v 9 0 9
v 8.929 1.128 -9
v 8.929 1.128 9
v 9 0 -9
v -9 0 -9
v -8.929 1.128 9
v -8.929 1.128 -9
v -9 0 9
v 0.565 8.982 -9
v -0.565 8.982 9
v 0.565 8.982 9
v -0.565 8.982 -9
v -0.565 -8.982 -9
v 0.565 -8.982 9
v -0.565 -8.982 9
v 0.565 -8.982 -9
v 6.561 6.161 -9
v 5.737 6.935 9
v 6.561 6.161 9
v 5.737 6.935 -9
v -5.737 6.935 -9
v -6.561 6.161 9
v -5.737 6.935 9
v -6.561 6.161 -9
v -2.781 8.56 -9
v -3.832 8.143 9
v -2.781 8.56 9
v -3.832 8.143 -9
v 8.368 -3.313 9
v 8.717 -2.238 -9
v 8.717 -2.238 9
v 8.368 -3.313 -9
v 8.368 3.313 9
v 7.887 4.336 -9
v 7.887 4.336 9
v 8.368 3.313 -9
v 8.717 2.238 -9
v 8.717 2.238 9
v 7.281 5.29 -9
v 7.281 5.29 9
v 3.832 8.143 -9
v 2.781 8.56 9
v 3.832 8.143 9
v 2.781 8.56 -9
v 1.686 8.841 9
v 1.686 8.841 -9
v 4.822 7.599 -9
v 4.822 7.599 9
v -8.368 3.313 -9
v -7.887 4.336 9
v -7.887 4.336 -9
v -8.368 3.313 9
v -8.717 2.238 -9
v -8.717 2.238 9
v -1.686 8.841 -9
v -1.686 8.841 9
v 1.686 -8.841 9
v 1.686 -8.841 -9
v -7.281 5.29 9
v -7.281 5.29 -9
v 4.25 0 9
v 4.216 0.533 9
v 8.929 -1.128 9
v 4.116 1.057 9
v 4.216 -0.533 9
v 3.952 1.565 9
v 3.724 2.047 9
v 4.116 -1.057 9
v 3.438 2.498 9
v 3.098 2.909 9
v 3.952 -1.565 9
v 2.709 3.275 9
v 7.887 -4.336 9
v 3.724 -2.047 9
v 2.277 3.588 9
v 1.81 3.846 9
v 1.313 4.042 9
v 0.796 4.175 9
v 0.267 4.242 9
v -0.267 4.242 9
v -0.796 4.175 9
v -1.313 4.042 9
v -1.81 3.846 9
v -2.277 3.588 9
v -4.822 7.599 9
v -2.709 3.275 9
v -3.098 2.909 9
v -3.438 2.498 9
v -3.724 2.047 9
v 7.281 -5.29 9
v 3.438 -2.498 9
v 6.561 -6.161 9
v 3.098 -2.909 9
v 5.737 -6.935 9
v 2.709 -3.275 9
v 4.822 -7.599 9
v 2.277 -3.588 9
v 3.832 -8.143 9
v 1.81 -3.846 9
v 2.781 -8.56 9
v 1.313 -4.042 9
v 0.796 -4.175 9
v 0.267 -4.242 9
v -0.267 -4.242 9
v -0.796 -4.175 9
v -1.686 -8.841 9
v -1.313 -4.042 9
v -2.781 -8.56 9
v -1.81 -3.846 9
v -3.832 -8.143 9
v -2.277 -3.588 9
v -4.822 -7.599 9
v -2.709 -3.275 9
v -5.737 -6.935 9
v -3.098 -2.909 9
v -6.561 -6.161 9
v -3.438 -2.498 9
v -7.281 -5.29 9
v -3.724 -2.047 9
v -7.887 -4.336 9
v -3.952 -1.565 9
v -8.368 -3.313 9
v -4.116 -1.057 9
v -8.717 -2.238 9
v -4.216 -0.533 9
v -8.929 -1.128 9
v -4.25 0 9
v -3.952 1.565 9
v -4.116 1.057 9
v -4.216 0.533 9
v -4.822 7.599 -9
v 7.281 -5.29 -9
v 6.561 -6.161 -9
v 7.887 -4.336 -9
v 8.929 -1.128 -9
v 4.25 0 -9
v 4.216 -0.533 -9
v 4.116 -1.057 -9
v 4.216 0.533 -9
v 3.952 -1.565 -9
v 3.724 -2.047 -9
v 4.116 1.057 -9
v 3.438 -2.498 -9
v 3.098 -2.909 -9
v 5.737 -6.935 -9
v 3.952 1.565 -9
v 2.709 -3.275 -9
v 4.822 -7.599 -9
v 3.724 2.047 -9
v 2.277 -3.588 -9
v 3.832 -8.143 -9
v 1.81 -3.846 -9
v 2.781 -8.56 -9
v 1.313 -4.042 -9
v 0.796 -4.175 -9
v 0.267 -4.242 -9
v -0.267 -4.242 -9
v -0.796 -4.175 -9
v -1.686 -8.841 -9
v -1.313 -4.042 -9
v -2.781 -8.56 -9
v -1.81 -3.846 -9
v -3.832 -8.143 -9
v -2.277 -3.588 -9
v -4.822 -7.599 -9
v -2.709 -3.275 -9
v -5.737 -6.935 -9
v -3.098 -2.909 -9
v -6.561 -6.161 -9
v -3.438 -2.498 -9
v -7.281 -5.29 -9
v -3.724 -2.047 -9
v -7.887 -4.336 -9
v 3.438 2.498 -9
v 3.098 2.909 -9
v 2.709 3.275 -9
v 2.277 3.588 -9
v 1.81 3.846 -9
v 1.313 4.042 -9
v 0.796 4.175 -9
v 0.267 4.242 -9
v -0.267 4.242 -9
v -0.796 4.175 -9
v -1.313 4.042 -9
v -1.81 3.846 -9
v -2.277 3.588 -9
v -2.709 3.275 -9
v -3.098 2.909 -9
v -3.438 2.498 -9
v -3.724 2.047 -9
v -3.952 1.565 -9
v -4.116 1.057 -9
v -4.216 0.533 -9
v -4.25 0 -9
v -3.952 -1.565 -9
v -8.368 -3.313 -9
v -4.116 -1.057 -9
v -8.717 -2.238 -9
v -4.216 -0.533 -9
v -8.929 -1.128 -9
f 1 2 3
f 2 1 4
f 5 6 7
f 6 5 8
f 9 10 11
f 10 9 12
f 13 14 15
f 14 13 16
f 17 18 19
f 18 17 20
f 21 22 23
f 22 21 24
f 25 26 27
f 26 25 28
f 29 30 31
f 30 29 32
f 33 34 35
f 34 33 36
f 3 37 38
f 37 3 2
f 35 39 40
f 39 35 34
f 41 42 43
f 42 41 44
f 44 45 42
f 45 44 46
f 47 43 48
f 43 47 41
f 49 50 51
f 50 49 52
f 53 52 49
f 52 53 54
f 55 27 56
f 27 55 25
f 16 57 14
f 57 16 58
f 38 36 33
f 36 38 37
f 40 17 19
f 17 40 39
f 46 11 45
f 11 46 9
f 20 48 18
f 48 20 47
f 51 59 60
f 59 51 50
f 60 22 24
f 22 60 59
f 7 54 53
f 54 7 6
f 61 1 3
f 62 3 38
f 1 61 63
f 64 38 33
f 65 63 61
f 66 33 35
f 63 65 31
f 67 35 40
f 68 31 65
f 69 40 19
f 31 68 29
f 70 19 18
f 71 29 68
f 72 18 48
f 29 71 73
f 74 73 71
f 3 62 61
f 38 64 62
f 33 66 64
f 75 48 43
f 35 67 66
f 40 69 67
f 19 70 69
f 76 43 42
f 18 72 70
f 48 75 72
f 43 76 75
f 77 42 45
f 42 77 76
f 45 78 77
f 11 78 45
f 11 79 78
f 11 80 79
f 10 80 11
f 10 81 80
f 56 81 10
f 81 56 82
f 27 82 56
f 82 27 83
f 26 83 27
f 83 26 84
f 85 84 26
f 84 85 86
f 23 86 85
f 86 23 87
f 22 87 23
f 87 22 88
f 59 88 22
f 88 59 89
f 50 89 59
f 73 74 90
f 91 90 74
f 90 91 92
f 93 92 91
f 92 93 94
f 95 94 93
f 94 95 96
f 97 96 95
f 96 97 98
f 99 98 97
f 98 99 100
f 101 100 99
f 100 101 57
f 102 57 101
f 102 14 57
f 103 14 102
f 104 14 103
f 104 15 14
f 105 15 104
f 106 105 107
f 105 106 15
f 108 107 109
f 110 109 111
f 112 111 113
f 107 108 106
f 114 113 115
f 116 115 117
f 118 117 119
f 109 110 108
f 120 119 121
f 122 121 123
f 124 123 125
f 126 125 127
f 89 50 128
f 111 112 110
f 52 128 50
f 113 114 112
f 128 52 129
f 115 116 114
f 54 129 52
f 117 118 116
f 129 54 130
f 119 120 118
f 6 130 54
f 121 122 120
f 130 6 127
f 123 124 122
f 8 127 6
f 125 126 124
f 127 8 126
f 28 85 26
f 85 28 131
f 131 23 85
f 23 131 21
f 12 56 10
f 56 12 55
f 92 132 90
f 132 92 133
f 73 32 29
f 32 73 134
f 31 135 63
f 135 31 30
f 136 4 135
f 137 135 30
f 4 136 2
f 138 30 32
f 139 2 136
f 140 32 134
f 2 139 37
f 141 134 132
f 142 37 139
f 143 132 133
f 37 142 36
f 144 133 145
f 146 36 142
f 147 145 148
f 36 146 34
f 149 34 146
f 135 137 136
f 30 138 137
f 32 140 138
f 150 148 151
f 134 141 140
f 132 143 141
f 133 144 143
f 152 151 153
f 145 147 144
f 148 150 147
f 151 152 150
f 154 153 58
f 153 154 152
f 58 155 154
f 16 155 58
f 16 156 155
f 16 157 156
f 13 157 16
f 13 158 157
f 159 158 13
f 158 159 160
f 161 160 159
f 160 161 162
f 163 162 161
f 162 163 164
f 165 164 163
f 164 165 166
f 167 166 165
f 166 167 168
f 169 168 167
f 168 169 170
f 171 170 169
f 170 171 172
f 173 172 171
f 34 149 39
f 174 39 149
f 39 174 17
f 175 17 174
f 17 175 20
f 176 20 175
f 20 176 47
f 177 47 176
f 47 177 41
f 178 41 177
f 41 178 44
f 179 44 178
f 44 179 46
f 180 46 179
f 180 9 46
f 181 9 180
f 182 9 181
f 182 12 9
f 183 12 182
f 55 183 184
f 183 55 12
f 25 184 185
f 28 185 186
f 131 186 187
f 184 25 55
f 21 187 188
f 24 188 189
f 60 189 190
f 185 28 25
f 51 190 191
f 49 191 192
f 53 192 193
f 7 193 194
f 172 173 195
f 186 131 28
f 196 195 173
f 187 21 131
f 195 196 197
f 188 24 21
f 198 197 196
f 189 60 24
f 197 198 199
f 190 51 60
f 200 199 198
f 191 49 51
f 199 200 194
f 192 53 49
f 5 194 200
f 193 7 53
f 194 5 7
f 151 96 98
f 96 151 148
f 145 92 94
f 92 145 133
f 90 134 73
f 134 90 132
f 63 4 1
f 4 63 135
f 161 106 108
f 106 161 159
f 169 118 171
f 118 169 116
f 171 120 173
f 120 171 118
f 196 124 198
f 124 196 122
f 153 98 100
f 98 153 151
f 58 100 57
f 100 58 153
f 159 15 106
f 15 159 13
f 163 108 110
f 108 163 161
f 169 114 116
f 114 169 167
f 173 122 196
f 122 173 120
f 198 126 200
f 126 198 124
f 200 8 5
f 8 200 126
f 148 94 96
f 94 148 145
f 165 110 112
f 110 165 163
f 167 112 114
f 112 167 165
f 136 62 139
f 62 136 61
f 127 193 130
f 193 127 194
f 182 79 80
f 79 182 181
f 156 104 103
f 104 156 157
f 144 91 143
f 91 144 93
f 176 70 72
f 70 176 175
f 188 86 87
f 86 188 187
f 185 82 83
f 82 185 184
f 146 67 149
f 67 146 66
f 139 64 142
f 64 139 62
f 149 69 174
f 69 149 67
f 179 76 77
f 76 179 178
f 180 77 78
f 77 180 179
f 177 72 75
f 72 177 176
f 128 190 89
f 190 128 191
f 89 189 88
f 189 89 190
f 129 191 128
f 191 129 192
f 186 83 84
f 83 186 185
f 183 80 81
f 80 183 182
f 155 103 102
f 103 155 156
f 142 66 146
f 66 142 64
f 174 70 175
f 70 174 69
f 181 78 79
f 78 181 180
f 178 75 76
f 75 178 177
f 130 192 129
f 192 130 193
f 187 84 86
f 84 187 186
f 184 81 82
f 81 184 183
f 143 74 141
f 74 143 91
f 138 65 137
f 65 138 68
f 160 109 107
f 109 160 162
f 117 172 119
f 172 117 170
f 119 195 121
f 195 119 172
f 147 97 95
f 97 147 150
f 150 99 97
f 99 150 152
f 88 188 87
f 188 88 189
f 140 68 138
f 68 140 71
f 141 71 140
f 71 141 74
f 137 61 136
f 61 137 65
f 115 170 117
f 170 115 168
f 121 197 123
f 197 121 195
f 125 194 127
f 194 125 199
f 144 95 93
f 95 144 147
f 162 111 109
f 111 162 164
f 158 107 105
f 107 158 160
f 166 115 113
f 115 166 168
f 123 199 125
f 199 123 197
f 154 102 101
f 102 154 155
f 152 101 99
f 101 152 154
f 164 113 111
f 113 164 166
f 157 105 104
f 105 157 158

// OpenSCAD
$fn = 50;


difference() {
	union() {
		translate(v = [0, 0, -9.0000000000]) {
			cylinder(h = 18, r = 9.0000000000);
		}
	}
	union() {
		translate(v = [0, 0, -100.0000000000]) {
			cylinder(h = 200, r = 4.2500000000);
		}
	}
}
